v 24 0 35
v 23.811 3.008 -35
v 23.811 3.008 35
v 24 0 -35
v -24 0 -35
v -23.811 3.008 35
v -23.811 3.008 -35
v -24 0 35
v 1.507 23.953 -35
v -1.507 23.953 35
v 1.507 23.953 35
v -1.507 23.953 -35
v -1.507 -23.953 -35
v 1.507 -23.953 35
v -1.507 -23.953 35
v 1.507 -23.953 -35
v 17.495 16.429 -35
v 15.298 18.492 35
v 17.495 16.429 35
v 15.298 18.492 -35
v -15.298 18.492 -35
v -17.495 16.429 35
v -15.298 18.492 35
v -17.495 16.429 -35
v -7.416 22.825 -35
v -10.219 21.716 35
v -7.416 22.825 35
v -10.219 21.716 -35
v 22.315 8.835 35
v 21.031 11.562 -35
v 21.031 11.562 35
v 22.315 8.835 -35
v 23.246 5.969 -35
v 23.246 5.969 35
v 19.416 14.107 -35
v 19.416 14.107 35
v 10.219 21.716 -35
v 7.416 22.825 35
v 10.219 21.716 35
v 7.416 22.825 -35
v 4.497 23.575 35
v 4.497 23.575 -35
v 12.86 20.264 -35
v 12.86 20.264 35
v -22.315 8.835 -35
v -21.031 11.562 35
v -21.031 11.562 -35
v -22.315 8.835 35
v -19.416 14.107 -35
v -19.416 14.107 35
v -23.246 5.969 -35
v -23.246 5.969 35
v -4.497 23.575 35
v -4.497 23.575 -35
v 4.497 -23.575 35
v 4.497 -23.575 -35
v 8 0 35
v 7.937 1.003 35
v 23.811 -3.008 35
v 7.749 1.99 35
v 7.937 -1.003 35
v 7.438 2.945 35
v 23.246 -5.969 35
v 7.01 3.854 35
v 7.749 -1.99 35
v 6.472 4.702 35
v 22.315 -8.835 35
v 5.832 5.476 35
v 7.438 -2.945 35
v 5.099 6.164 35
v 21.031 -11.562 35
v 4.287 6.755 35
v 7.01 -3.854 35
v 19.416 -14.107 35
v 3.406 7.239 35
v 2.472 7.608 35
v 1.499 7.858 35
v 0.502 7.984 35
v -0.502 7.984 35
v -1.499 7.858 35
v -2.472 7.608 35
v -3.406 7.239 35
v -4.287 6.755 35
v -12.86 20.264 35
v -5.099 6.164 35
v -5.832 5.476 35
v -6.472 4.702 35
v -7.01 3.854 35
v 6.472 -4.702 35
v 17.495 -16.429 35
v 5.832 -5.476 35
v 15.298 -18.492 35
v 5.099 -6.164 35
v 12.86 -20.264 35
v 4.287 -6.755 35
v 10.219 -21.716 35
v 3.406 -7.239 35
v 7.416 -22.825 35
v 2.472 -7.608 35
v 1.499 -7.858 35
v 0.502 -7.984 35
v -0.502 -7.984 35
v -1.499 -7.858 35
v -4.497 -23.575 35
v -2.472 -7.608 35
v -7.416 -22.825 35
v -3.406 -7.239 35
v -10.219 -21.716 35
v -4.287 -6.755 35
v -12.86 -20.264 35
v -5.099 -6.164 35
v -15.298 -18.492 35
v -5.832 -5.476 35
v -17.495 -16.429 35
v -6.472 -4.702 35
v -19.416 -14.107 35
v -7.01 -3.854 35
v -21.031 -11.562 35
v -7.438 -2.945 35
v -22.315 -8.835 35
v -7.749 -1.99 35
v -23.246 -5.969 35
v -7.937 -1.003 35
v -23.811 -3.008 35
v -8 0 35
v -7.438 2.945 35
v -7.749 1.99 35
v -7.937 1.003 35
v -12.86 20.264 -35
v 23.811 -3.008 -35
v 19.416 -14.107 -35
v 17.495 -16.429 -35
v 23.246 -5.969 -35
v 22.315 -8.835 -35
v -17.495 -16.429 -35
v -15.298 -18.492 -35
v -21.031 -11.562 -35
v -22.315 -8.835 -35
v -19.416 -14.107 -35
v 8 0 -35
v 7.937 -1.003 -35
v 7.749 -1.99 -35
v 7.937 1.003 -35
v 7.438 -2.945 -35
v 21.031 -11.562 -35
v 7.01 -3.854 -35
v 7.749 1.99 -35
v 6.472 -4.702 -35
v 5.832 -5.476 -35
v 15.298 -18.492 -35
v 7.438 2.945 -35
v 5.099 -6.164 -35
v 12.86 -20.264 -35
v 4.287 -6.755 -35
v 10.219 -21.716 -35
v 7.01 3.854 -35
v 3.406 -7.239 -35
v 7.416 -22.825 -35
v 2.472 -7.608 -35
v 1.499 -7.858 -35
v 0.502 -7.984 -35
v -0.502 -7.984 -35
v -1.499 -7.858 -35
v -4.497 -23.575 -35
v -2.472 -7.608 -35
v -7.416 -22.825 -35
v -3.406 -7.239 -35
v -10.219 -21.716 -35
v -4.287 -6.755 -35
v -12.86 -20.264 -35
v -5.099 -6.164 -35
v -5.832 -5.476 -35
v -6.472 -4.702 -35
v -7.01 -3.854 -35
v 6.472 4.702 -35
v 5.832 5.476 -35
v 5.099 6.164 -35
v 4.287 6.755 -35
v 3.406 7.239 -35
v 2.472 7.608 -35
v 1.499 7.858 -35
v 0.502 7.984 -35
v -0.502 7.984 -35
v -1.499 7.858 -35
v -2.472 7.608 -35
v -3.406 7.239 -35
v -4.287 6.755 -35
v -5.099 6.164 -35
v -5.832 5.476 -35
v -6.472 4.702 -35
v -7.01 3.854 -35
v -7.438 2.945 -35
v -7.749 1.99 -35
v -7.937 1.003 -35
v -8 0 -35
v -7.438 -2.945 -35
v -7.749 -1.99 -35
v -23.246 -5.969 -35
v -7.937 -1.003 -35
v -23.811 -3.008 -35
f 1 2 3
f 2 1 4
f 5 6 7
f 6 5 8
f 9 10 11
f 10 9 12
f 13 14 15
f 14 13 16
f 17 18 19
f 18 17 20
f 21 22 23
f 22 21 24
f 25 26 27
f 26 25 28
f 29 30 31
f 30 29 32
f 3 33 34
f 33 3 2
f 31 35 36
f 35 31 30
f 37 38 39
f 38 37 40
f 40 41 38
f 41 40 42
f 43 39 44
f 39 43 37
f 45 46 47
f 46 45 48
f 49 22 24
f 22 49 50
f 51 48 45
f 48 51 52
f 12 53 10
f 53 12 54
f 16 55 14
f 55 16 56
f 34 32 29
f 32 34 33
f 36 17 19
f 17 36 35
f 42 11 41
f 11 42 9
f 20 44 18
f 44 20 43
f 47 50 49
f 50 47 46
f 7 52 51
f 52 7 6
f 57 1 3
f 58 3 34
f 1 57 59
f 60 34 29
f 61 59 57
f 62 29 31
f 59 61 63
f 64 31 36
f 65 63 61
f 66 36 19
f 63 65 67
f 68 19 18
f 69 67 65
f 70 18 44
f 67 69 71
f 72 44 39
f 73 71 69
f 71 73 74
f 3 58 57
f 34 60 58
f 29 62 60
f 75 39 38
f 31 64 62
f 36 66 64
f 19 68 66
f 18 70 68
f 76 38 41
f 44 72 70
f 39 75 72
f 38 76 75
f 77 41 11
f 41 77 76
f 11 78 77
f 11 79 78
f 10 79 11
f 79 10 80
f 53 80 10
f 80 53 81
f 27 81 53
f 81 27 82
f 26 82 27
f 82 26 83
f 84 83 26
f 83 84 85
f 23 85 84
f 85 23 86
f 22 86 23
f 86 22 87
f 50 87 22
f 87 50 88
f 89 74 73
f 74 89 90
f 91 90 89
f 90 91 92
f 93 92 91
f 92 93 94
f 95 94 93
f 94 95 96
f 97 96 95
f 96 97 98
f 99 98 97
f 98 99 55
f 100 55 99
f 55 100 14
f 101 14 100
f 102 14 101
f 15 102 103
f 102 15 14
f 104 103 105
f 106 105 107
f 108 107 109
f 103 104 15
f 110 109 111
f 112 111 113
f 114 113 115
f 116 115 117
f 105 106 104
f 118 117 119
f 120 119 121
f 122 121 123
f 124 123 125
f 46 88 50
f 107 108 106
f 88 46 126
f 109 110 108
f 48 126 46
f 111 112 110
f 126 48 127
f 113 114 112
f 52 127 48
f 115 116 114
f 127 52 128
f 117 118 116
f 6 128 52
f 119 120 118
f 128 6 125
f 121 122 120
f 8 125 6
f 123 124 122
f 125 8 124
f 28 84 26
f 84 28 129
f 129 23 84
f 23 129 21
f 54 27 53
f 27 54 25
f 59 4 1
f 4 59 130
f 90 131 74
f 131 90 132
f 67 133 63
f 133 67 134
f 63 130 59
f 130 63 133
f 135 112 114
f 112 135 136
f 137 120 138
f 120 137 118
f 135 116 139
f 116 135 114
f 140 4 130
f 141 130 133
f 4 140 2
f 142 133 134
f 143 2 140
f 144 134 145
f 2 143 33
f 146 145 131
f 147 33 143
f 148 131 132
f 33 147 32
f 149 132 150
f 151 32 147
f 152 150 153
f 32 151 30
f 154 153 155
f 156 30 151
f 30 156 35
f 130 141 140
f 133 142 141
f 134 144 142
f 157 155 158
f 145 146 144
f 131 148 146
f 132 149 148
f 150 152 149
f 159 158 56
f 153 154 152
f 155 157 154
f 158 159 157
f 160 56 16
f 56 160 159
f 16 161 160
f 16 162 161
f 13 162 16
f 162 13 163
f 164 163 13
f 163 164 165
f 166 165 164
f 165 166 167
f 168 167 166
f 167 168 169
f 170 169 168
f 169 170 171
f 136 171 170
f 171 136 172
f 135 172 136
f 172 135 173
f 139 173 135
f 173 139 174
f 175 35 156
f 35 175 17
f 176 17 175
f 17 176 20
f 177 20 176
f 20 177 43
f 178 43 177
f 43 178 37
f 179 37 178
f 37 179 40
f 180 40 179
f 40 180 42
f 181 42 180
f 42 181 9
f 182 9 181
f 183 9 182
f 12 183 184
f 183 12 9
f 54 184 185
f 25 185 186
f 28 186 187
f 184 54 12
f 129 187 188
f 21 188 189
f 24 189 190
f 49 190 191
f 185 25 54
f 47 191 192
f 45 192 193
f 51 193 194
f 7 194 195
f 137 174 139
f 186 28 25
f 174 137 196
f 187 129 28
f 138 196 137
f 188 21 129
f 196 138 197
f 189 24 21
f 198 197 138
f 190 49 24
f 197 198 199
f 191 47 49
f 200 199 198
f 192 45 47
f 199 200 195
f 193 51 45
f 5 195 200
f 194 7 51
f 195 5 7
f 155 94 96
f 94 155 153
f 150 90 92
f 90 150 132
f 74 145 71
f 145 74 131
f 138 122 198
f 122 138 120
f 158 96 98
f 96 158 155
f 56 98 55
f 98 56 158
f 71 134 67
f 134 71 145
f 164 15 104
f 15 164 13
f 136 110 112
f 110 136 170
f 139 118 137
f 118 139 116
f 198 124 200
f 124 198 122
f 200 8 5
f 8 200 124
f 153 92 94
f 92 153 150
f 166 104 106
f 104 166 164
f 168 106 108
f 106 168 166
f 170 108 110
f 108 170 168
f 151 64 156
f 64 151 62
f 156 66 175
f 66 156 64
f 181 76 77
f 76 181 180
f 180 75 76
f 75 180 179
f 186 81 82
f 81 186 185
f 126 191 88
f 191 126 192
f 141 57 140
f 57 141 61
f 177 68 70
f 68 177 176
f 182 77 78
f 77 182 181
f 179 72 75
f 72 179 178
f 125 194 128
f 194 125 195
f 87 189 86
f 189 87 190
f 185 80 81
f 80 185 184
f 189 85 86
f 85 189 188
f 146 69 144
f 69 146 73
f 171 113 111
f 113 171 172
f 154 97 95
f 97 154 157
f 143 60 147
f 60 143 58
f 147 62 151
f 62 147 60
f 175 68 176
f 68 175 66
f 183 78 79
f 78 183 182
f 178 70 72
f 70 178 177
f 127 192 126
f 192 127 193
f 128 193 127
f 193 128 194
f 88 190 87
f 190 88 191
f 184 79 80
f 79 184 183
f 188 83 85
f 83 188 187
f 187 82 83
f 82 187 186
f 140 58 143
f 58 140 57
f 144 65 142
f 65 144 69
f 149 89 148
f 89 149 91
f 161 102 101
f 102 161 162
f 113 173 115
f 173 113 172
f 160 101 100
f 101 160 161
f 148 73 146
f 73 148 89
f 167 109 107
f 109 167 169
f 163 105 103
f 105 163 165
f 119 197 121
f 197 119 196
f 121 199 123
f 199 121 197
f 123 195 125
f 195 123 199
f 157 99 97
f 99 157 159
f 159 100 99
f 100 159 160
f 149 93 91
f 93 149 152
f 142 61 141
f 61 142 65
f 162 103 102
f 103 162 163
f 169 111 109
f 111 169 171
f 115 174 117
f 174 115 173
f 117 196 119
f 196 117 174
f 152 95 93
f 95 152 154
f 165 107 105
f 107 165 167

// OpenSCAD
$fn = 50;


difference() {
	union() {
		translate(v = [0, 0, -35.0000000000]) {
			cylinder(h = 70, r = 24.0000000000);
		}
	}
	union() {
		translate(v = [0, 0, -100.0000000000]) {
			cylinder(h = 200, r = 8);
		}
	}
}
